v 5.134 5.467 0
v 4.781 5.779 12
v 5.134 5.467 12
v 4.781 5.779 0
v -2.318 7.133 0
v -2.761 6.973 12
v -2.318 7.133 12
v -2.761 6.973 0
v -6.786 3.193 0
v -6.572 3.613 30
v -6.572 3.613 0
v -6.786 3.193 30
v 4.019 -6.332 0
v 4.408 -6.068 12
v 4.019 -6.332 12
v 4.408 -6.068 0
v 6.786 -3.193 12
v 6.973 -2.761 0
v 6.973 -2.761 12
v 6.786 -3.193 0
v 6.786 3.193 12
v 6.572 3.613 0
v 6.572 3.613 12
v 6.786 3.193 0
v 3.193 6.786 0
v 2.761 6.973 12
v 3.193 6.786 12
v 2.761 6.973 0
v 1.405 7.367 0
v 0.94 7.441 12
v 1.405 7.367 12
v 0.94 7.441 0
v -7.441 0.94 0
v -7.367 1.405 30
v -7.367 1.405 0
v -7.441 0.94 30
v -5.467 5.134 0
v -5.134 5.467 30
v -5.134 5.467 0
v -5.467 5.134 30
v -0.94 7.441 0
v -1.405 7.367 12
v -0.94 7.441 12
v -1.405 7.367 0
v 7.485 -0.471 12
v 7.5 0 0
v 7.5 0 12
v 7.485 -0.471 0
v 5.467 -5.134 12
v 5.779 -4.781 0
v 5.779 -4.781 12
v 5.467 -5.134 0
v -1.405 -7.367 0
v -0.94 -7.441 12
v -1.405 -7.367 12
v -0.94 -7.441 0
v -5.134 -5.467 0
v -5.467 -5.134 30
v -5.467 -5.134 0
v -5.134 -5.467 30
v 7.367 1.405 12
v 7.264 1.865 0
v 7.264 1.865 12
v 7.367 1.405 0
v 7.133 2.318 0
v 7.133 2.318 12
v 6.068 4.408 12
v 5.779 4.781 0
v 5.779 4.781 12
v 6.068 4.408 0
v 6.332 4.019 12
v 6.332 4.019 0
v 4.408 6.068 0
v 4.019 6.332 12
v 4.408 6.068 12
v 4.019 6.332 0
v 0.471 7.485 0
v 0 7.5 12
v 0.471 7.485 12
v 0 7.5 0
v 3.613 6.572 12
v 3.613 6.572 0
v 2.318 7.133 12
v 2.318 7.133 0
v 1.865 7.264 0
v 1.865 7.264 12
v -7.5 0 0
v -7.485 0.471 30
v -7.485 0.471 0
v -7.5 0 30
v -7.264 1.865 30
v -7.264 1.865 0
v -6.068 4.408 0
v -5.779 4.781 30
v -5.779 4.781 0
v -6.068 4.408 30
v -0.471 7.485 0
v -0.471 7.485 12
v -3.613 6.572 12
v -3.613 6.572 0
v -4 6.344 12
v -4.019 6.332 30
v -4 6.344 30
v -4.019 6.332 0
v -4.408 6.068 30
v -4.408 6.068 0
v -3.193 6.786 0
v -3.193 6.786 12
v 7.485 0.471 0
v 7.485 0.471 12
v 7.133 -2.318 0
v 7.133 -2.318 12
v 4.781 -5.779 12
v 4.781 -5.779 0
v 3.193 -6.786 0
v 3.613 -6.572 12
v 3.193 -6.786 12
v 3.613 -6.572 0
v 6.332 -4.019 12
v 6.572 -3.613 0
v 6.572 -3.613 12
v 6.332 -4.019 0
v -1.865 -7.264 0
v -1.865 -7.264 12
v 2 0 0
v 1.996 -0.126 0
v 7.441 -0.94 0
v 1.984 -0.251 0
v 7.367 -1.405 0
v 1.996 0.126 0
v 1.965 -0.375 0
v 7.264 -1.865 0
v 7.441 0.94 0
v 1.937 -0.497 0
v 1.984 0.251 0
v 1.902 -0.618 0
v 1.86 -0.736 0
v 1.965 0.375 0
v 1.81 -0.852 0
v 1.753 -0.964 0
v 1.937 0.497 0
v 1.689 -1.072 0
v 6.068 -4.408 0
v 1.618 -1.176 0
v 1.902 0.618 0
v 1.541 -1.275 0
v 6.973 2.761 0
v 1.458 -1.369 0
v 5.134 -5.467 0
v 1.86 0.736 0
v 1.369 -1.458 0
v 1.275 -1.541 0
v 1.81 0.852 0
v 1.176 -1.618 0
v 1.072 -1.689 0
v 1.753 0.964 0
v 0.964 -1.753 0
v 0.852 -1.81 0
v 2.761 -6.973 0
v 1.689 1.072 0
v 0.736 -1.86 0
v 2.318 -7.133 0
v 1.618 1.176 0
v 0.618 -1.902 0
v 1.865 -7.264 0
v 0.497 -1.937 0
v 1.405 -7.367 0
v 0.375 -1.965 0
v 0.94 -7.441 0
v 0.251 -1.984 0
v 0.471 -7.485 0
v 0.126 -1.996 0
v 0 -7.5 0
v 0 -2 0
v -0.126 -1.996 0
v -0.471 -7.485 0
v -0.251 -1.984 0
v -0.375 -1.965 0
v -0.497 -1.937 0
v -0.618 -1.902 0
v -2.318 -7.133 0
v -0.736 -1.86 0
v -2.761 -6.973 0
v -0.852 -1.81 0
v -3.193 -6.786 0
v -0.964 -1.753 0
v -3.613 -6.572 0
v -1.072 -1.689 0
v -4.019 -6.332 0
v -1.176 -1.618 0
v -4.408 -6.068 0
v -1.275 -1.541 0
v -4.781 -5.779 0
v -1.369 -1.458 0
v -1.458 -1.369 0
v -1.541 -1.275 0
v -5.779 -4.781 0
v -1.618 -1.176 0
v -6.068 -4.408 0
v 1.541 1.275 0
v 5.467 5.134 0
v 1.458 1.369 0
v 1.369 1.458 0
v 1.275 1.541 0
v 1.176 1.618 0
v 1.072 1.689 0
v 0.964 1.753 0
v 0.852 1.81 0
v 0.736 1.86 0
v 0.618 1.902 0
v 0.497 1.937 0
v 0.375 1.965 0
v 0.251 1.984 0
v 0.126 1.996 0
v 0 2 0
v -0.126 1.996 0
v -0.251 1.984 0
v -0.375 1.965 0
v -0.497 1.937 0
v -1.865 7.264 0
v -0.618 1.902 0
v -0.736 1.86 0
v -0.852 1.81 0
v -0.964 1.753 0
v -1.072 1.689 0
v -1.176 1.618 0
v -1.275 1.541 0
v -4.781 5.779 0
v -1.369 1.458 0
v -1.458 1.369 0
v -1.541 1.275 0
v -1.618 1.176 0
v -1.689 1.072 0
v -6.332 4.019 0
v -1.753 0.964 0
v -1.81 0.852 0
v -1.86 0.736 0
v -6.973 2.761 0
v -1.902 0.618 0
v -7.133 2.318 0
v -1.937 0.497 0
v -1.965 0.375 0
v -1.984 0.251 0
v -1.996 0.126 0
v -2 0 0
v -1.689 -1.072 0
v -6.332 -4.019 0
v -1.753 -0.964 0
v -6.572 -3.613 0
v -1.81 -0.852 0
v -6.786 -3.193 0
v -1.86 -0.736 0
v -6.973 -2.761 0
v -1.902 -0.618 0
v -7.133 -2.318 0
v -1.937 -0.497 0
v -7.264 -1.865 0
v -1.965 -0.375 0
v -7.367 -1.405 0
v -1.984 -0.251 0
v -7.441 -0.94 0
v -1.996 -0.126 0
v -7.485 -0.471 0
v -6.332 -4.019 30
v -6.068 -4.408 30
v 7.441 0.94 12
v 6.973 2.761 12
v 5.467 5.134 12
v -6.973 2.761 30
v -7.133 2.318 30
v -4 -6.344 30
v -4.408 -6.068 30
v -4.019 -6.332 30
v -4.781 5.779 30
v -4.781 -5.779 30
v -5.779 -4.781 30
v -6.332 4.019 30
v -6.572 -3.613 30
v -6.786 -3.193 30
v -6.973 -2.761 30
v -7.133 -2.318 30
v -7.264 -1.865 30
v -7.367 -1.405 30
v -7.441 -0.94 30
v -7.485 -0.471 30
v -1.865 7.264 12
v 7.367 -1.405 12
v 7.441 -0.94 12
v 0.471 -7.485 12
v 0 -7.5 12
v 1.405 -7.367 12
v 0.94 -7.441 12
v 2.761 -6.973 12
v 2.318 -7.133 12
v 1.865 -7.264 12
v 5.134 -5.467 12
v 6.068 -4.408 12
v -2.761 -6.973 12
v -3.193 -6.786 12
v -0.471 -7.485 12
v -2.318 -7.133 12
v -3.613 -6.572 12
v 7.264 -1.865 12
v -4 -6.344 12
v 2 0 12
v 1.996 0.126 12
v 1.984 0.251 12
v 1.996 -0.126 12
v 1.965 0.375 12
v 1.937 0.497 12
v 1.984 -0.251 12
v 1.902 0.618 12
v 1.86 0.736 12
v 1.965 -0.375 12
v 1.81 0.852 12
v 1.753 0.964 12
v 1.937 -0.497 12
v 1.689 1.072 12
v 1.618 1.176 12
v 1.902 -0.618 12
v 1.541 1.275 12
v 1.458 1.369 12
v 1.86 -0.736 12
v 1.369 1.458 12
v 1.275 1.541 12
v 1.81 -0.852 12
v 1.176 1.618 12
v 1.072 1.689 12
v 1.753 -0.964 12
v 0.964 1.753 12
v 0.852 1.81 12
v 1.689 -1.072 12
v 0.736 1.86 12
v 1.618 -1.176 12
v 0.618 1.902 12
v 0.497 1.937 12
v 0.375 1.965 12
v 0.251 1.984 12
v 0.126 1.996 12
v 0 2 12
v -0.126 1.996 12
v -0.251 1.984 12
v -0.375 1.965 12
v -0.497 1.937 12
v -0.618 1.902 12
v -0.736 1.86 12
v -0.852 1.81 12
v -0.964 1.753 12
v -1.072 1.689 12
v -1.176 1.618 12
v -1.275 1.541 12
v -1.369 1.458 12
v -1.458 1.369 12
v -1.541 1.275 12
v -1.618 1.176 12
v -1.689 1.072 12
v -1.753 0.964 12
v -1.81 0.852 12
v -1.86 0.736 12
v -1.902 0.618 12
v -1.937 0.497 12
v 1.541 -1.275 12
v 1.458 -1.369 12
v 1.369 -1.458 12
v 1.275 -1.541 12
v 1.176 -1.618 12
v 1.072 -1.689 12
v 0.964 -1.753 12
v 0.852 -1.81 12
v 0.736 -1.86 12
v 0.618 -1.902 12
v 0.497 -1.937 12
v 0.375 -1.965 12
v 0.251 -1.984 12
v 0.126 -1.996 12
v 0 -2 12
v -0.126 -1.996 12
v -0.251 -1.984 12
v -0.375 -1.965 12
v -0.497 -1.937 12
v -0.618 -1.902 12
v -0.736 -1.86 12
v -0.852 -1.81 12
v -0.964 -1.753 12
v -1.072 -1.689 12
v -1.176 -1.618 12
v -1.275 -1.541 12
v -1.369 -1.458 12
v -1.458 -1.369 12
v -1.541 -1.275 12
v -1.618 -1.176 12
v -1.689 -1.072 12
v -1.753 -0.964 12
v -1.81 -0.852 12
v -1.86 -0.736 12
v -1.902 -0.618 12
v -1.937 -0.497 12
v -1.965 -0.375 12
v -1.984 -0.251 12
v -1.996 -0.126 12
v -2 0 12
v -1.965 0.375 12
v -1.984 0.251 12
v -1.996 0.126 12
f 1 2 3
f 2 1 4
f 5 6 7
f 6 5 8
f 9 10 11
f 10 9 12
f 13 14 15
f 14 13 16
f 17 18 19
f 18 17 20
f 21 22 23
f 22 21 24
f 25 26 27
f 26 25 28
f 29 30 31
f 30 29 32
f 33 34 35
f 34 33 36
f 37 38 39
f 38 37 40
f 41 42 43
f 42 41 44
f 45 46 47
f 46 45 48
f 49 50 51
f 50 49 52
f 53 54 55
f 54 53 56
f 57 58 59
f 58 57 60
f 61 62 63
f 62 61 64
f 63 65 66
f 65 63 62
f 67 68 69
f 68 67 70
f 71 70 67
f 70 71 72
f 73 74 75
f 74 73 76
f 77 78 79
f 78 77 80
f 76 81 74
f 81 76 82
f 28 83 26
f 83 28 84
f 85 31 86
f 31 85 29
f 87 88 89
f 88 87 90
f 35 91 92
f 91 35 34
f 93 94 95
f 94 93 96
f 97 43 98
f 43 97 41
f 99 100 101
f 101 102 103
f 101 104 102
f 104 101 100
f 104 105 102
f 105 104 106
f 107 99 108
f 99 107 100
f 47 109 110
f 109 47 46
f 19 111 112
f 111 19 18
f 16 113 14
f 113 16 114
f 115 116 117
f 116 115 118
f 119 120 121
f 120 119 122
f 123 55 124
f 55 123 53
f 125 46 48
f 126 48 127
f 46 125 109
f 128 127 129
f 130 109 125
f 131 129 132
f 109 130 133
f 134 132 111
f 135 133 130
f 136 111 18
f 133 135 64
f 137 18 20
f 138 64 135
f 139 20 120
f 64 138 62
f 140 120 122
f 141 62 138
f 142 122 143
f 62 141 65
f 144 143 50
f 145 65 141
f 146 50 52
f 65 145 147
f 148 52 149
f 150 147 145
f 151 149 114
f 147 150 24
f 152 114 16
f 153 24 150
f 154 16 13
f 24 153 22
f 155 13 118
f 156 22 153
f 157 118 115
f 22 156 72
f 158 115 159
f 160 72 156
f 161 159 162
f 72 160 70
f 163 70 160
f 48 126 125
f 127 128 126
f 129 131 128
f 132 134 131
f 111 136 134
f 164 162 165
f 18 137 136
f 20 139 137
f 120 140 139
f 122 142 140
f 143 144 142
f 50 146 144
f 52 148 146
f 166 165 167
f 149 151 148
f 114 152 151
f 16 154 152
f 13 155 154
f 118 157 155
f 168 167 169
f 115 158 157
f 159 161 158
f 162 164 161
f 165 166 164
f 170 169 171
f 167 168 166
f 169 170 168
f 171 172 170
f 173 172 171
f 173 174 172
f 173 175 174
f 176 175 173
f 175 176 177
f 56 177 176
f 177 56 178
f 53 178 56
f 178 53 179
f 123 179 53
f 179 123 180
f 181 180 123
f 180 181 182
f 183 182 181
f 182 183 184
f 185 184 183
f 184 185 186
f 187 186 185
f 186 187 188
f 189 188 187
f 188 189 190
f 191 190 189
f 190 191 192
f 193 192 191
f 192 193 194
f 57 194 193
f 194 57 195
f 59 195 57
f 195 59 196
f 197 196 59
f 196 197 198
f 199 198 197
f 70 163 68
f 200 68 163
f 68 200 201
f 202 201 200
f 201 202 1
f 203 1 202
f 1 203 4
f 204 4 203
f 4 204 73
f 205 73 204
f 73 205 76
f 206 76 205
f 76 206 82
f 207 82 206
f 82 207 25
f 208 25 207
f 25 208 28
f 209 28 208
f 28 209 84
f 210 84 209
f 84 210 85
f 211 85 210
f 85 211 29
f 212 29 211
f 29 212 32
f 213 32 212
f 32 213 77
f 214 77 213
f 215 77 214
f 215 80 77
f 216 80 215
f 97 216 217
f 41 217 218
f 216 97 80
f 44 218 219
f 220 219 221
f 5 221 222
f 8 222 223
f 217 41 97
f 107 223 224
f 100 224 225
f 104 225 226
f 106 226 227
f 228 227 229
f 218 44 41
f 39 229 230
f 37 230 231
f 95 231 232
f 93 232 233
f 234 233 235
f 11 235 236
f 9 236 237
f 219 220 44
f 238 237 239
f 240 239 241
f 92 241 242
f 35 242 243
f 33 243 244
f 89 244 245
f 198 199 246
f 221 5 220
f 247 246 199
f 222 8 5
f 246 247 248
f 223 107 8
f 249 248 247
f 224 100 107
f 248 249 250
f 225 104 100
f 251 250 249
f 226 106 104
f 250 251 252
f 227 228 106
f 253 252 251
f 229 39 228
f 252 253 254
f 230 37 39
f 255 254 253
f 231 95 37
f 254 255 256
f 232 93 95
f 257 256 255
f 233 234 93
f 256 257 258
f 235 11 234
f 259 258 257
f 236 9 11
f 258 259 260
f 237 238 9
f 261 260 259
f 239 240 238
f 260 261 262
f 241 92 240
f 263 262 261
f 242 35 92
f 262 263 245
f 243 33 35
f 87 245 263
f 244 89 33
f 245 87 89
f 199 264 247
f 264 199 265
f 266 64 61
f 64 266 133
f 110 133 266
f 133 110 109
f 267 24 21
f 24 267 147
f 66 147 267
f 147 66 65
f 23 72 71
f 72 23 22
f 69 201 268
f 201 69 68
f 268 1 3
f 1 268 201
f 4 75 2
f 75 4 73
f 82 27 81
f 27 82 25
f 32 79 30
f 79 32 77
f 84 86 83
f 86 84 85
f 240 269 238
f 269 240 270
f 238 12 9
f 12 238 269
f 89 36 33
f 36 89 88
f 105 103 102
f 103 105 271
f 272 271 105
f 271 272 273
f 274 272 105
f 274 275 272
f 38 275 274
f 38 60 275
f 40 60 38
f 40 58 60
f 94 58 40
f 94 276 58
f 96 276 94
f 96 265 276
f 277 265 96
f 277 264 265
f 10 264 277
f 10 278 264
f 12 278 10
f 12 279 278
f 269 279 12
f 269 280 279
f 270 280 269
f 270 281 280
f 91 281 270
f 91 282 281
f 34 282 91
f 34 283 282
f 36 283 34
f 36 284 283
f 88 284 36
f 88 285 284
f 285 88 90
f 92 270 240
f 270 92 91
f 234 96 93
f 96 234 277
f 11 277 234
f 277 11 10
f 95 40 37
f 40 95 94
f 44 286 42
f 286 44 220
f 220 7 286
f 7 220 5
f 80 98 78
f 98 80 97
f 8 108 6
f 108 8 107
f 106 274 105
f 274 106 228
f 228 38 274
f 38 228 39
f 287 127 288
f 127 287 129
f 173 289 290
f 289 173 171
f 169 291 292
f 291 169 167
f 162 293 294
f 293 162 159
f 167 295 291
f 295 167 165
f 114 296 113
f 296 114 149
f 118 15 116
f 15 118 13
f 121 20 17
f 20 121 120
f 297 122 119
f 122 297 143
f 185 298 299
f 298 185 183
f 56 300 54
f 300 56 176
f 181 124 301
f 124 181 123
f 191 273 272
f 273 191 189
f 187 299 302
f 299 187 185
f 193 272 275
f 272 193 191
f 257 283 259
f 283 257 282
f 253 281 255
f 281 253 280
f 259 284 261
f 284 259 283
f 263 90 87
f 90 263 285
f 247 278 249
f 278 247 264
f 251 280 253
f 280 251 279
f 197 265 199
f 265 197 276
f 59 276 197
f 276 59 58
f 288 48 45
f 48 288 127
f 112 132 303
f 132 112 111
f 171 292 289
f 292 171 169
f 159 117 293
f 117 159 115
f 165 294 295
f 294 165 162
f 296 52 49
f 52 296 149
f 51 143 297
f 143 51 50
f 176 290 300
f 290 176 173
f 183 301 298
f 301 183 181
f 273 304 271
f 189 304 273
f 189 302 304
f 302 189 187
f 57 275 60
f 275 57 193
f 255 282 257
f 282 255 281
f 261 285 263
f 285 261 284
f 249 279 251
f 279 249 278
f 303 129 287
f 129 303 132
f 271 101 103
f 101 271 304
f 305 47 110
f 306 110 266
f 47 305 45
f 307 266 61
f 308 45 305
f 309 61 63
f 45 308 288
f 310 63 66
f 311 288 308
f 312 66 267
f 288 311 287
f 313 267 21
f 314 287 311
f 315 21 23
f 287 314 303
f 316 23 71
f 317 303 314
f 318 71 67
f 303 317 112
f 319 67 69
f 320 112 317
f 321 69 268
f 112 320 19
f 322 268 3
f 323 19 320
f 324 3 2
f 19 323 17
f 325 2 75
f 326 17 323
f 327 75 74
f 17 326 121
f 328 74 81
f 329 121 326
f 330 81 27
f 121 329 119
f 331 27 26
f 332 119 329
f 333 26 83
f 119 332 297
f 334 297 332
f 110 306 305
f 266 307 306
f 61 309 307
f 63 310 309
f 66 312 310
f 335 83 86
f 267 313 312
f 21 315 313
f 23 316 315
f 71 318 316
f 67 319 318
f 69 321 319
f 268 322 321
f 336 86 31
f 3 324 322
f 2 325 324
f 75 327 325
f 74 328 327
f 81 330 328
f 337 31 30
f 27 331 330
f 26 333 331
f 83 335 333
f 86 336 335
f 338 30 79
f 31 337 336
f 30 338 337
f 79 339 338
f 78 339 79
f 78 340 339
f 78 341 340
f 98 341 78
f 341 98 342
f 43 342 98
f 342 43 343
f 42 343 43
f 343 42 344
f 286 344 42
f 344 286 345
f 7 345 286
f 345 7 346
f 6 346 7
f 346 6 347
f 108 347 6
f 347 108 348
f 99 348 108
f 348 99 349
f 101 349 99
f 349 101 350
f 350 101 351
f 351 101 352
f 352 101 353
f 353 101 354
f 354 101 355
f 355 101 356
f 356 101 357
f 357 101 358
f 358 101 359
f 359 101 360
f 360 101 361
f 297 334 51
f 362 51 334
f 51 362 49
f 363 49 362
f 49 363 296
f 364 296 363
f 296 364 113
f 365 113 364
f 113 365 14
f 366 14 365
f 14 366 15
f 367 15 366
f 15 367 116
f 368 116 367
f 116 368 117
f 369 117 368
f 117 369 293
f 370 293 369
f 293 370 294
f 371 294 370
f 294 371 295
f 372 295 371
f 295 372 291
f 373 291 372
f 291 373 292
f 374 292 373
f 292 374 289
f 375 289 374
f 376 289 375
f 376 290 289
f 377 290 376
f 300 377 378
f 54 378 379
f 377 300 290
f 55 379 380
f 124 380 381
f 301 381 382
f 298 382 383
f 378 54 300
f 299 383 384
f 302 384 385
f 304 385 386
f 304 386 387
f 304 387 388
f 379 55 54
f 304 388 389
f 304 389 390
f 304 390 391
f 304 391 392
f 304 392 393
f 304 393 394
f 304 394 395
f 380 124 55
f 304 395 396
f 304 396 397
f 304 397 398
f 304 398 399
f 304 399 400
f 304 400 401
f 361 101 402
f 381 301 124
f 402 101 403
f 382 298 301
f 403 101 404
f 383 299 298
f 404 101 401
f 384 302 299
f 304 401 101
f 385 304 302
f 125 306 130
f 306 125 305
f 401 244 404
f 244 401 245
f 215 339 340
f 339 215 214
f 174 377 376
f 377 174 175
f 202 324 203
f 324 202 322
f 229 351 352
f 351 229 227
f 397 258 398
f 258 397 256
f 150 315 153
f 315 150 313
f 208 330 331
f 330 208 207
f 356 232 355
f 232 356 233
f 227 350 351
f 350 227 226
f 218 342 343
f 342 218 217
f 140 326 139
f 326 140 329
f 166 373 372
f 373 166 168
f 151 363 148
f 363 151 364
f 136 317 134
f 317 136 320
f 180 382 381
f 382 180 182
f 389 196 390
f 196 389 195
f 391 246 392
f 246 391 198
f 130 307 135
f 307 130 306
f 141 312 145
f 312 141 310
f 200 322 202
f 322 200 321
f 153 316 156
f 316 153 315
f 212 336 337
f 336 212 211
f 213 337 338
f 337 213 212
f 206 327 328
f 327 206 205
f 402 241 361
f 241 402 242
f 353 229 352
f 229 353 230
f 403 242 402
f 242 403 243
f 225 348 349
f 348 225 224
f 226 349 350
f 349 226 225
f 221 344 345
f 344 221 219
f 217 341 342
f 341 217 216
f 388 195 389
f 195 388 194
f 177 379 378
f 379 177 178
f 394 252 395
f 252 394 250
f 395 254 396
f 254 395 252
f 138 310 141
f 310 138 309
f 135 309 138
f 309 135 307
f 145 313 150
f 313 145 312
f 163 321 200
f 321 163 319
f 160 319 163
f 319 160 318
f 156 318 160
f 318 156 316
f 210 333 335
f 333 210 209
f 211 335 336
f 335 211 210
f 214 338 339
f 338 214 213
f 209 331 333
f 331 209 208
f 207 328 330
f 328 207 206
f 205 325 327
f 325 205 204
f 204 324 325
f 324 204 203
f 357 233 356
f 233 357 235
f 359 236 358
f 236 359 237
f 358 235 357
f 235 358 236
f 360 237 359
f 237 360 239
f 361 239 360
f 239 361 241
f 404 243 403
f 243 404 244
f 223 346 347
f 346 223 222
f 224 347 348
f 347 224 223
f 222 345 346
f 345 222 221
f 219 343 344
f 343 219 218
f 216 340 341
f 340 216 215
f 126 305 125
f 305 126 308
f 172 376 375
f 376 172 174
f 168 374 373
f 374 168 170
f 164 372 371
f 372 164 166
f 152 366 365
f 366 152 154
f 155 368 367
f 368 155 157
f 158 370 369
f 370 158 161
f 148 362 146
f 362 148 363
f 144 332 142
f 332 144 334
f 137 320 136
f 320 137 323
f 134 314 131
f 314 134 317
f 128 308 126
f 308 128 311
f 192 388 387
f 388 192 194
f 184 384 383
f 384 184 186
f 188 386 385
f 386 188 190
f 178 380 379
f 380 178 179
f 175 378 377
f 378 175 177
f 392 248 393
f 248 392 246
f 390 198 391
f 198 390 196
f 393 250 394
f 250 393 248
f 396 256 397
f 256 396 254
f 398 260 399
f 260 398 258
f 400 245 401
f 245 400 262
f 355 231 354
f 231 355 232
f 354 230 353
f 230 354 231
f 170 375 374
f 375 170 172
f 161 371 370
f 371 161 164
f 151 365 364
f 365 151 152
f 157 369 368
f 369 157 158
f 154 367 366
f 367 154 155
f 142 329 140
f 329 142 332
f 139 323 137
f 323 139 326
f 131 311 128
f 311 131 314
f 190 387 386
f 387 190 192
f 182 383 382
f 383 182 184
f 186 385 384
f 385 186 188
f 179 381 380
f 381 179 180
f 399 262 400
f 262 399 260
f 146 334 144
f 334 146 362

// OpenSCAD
rHaz = 4;
hTotal = 30;
alturaBase = 12     ;
dTambor = 15;
dEje = 4;

$fn = 100;

difference(){
    cylinder(d=dTambor,h=hTotal);

    translate([-rHaz,-10,alturaBase]){
        cube([20,20,30]);
    }
    
    cylinder(d=dEje,h=hTotal);
}
